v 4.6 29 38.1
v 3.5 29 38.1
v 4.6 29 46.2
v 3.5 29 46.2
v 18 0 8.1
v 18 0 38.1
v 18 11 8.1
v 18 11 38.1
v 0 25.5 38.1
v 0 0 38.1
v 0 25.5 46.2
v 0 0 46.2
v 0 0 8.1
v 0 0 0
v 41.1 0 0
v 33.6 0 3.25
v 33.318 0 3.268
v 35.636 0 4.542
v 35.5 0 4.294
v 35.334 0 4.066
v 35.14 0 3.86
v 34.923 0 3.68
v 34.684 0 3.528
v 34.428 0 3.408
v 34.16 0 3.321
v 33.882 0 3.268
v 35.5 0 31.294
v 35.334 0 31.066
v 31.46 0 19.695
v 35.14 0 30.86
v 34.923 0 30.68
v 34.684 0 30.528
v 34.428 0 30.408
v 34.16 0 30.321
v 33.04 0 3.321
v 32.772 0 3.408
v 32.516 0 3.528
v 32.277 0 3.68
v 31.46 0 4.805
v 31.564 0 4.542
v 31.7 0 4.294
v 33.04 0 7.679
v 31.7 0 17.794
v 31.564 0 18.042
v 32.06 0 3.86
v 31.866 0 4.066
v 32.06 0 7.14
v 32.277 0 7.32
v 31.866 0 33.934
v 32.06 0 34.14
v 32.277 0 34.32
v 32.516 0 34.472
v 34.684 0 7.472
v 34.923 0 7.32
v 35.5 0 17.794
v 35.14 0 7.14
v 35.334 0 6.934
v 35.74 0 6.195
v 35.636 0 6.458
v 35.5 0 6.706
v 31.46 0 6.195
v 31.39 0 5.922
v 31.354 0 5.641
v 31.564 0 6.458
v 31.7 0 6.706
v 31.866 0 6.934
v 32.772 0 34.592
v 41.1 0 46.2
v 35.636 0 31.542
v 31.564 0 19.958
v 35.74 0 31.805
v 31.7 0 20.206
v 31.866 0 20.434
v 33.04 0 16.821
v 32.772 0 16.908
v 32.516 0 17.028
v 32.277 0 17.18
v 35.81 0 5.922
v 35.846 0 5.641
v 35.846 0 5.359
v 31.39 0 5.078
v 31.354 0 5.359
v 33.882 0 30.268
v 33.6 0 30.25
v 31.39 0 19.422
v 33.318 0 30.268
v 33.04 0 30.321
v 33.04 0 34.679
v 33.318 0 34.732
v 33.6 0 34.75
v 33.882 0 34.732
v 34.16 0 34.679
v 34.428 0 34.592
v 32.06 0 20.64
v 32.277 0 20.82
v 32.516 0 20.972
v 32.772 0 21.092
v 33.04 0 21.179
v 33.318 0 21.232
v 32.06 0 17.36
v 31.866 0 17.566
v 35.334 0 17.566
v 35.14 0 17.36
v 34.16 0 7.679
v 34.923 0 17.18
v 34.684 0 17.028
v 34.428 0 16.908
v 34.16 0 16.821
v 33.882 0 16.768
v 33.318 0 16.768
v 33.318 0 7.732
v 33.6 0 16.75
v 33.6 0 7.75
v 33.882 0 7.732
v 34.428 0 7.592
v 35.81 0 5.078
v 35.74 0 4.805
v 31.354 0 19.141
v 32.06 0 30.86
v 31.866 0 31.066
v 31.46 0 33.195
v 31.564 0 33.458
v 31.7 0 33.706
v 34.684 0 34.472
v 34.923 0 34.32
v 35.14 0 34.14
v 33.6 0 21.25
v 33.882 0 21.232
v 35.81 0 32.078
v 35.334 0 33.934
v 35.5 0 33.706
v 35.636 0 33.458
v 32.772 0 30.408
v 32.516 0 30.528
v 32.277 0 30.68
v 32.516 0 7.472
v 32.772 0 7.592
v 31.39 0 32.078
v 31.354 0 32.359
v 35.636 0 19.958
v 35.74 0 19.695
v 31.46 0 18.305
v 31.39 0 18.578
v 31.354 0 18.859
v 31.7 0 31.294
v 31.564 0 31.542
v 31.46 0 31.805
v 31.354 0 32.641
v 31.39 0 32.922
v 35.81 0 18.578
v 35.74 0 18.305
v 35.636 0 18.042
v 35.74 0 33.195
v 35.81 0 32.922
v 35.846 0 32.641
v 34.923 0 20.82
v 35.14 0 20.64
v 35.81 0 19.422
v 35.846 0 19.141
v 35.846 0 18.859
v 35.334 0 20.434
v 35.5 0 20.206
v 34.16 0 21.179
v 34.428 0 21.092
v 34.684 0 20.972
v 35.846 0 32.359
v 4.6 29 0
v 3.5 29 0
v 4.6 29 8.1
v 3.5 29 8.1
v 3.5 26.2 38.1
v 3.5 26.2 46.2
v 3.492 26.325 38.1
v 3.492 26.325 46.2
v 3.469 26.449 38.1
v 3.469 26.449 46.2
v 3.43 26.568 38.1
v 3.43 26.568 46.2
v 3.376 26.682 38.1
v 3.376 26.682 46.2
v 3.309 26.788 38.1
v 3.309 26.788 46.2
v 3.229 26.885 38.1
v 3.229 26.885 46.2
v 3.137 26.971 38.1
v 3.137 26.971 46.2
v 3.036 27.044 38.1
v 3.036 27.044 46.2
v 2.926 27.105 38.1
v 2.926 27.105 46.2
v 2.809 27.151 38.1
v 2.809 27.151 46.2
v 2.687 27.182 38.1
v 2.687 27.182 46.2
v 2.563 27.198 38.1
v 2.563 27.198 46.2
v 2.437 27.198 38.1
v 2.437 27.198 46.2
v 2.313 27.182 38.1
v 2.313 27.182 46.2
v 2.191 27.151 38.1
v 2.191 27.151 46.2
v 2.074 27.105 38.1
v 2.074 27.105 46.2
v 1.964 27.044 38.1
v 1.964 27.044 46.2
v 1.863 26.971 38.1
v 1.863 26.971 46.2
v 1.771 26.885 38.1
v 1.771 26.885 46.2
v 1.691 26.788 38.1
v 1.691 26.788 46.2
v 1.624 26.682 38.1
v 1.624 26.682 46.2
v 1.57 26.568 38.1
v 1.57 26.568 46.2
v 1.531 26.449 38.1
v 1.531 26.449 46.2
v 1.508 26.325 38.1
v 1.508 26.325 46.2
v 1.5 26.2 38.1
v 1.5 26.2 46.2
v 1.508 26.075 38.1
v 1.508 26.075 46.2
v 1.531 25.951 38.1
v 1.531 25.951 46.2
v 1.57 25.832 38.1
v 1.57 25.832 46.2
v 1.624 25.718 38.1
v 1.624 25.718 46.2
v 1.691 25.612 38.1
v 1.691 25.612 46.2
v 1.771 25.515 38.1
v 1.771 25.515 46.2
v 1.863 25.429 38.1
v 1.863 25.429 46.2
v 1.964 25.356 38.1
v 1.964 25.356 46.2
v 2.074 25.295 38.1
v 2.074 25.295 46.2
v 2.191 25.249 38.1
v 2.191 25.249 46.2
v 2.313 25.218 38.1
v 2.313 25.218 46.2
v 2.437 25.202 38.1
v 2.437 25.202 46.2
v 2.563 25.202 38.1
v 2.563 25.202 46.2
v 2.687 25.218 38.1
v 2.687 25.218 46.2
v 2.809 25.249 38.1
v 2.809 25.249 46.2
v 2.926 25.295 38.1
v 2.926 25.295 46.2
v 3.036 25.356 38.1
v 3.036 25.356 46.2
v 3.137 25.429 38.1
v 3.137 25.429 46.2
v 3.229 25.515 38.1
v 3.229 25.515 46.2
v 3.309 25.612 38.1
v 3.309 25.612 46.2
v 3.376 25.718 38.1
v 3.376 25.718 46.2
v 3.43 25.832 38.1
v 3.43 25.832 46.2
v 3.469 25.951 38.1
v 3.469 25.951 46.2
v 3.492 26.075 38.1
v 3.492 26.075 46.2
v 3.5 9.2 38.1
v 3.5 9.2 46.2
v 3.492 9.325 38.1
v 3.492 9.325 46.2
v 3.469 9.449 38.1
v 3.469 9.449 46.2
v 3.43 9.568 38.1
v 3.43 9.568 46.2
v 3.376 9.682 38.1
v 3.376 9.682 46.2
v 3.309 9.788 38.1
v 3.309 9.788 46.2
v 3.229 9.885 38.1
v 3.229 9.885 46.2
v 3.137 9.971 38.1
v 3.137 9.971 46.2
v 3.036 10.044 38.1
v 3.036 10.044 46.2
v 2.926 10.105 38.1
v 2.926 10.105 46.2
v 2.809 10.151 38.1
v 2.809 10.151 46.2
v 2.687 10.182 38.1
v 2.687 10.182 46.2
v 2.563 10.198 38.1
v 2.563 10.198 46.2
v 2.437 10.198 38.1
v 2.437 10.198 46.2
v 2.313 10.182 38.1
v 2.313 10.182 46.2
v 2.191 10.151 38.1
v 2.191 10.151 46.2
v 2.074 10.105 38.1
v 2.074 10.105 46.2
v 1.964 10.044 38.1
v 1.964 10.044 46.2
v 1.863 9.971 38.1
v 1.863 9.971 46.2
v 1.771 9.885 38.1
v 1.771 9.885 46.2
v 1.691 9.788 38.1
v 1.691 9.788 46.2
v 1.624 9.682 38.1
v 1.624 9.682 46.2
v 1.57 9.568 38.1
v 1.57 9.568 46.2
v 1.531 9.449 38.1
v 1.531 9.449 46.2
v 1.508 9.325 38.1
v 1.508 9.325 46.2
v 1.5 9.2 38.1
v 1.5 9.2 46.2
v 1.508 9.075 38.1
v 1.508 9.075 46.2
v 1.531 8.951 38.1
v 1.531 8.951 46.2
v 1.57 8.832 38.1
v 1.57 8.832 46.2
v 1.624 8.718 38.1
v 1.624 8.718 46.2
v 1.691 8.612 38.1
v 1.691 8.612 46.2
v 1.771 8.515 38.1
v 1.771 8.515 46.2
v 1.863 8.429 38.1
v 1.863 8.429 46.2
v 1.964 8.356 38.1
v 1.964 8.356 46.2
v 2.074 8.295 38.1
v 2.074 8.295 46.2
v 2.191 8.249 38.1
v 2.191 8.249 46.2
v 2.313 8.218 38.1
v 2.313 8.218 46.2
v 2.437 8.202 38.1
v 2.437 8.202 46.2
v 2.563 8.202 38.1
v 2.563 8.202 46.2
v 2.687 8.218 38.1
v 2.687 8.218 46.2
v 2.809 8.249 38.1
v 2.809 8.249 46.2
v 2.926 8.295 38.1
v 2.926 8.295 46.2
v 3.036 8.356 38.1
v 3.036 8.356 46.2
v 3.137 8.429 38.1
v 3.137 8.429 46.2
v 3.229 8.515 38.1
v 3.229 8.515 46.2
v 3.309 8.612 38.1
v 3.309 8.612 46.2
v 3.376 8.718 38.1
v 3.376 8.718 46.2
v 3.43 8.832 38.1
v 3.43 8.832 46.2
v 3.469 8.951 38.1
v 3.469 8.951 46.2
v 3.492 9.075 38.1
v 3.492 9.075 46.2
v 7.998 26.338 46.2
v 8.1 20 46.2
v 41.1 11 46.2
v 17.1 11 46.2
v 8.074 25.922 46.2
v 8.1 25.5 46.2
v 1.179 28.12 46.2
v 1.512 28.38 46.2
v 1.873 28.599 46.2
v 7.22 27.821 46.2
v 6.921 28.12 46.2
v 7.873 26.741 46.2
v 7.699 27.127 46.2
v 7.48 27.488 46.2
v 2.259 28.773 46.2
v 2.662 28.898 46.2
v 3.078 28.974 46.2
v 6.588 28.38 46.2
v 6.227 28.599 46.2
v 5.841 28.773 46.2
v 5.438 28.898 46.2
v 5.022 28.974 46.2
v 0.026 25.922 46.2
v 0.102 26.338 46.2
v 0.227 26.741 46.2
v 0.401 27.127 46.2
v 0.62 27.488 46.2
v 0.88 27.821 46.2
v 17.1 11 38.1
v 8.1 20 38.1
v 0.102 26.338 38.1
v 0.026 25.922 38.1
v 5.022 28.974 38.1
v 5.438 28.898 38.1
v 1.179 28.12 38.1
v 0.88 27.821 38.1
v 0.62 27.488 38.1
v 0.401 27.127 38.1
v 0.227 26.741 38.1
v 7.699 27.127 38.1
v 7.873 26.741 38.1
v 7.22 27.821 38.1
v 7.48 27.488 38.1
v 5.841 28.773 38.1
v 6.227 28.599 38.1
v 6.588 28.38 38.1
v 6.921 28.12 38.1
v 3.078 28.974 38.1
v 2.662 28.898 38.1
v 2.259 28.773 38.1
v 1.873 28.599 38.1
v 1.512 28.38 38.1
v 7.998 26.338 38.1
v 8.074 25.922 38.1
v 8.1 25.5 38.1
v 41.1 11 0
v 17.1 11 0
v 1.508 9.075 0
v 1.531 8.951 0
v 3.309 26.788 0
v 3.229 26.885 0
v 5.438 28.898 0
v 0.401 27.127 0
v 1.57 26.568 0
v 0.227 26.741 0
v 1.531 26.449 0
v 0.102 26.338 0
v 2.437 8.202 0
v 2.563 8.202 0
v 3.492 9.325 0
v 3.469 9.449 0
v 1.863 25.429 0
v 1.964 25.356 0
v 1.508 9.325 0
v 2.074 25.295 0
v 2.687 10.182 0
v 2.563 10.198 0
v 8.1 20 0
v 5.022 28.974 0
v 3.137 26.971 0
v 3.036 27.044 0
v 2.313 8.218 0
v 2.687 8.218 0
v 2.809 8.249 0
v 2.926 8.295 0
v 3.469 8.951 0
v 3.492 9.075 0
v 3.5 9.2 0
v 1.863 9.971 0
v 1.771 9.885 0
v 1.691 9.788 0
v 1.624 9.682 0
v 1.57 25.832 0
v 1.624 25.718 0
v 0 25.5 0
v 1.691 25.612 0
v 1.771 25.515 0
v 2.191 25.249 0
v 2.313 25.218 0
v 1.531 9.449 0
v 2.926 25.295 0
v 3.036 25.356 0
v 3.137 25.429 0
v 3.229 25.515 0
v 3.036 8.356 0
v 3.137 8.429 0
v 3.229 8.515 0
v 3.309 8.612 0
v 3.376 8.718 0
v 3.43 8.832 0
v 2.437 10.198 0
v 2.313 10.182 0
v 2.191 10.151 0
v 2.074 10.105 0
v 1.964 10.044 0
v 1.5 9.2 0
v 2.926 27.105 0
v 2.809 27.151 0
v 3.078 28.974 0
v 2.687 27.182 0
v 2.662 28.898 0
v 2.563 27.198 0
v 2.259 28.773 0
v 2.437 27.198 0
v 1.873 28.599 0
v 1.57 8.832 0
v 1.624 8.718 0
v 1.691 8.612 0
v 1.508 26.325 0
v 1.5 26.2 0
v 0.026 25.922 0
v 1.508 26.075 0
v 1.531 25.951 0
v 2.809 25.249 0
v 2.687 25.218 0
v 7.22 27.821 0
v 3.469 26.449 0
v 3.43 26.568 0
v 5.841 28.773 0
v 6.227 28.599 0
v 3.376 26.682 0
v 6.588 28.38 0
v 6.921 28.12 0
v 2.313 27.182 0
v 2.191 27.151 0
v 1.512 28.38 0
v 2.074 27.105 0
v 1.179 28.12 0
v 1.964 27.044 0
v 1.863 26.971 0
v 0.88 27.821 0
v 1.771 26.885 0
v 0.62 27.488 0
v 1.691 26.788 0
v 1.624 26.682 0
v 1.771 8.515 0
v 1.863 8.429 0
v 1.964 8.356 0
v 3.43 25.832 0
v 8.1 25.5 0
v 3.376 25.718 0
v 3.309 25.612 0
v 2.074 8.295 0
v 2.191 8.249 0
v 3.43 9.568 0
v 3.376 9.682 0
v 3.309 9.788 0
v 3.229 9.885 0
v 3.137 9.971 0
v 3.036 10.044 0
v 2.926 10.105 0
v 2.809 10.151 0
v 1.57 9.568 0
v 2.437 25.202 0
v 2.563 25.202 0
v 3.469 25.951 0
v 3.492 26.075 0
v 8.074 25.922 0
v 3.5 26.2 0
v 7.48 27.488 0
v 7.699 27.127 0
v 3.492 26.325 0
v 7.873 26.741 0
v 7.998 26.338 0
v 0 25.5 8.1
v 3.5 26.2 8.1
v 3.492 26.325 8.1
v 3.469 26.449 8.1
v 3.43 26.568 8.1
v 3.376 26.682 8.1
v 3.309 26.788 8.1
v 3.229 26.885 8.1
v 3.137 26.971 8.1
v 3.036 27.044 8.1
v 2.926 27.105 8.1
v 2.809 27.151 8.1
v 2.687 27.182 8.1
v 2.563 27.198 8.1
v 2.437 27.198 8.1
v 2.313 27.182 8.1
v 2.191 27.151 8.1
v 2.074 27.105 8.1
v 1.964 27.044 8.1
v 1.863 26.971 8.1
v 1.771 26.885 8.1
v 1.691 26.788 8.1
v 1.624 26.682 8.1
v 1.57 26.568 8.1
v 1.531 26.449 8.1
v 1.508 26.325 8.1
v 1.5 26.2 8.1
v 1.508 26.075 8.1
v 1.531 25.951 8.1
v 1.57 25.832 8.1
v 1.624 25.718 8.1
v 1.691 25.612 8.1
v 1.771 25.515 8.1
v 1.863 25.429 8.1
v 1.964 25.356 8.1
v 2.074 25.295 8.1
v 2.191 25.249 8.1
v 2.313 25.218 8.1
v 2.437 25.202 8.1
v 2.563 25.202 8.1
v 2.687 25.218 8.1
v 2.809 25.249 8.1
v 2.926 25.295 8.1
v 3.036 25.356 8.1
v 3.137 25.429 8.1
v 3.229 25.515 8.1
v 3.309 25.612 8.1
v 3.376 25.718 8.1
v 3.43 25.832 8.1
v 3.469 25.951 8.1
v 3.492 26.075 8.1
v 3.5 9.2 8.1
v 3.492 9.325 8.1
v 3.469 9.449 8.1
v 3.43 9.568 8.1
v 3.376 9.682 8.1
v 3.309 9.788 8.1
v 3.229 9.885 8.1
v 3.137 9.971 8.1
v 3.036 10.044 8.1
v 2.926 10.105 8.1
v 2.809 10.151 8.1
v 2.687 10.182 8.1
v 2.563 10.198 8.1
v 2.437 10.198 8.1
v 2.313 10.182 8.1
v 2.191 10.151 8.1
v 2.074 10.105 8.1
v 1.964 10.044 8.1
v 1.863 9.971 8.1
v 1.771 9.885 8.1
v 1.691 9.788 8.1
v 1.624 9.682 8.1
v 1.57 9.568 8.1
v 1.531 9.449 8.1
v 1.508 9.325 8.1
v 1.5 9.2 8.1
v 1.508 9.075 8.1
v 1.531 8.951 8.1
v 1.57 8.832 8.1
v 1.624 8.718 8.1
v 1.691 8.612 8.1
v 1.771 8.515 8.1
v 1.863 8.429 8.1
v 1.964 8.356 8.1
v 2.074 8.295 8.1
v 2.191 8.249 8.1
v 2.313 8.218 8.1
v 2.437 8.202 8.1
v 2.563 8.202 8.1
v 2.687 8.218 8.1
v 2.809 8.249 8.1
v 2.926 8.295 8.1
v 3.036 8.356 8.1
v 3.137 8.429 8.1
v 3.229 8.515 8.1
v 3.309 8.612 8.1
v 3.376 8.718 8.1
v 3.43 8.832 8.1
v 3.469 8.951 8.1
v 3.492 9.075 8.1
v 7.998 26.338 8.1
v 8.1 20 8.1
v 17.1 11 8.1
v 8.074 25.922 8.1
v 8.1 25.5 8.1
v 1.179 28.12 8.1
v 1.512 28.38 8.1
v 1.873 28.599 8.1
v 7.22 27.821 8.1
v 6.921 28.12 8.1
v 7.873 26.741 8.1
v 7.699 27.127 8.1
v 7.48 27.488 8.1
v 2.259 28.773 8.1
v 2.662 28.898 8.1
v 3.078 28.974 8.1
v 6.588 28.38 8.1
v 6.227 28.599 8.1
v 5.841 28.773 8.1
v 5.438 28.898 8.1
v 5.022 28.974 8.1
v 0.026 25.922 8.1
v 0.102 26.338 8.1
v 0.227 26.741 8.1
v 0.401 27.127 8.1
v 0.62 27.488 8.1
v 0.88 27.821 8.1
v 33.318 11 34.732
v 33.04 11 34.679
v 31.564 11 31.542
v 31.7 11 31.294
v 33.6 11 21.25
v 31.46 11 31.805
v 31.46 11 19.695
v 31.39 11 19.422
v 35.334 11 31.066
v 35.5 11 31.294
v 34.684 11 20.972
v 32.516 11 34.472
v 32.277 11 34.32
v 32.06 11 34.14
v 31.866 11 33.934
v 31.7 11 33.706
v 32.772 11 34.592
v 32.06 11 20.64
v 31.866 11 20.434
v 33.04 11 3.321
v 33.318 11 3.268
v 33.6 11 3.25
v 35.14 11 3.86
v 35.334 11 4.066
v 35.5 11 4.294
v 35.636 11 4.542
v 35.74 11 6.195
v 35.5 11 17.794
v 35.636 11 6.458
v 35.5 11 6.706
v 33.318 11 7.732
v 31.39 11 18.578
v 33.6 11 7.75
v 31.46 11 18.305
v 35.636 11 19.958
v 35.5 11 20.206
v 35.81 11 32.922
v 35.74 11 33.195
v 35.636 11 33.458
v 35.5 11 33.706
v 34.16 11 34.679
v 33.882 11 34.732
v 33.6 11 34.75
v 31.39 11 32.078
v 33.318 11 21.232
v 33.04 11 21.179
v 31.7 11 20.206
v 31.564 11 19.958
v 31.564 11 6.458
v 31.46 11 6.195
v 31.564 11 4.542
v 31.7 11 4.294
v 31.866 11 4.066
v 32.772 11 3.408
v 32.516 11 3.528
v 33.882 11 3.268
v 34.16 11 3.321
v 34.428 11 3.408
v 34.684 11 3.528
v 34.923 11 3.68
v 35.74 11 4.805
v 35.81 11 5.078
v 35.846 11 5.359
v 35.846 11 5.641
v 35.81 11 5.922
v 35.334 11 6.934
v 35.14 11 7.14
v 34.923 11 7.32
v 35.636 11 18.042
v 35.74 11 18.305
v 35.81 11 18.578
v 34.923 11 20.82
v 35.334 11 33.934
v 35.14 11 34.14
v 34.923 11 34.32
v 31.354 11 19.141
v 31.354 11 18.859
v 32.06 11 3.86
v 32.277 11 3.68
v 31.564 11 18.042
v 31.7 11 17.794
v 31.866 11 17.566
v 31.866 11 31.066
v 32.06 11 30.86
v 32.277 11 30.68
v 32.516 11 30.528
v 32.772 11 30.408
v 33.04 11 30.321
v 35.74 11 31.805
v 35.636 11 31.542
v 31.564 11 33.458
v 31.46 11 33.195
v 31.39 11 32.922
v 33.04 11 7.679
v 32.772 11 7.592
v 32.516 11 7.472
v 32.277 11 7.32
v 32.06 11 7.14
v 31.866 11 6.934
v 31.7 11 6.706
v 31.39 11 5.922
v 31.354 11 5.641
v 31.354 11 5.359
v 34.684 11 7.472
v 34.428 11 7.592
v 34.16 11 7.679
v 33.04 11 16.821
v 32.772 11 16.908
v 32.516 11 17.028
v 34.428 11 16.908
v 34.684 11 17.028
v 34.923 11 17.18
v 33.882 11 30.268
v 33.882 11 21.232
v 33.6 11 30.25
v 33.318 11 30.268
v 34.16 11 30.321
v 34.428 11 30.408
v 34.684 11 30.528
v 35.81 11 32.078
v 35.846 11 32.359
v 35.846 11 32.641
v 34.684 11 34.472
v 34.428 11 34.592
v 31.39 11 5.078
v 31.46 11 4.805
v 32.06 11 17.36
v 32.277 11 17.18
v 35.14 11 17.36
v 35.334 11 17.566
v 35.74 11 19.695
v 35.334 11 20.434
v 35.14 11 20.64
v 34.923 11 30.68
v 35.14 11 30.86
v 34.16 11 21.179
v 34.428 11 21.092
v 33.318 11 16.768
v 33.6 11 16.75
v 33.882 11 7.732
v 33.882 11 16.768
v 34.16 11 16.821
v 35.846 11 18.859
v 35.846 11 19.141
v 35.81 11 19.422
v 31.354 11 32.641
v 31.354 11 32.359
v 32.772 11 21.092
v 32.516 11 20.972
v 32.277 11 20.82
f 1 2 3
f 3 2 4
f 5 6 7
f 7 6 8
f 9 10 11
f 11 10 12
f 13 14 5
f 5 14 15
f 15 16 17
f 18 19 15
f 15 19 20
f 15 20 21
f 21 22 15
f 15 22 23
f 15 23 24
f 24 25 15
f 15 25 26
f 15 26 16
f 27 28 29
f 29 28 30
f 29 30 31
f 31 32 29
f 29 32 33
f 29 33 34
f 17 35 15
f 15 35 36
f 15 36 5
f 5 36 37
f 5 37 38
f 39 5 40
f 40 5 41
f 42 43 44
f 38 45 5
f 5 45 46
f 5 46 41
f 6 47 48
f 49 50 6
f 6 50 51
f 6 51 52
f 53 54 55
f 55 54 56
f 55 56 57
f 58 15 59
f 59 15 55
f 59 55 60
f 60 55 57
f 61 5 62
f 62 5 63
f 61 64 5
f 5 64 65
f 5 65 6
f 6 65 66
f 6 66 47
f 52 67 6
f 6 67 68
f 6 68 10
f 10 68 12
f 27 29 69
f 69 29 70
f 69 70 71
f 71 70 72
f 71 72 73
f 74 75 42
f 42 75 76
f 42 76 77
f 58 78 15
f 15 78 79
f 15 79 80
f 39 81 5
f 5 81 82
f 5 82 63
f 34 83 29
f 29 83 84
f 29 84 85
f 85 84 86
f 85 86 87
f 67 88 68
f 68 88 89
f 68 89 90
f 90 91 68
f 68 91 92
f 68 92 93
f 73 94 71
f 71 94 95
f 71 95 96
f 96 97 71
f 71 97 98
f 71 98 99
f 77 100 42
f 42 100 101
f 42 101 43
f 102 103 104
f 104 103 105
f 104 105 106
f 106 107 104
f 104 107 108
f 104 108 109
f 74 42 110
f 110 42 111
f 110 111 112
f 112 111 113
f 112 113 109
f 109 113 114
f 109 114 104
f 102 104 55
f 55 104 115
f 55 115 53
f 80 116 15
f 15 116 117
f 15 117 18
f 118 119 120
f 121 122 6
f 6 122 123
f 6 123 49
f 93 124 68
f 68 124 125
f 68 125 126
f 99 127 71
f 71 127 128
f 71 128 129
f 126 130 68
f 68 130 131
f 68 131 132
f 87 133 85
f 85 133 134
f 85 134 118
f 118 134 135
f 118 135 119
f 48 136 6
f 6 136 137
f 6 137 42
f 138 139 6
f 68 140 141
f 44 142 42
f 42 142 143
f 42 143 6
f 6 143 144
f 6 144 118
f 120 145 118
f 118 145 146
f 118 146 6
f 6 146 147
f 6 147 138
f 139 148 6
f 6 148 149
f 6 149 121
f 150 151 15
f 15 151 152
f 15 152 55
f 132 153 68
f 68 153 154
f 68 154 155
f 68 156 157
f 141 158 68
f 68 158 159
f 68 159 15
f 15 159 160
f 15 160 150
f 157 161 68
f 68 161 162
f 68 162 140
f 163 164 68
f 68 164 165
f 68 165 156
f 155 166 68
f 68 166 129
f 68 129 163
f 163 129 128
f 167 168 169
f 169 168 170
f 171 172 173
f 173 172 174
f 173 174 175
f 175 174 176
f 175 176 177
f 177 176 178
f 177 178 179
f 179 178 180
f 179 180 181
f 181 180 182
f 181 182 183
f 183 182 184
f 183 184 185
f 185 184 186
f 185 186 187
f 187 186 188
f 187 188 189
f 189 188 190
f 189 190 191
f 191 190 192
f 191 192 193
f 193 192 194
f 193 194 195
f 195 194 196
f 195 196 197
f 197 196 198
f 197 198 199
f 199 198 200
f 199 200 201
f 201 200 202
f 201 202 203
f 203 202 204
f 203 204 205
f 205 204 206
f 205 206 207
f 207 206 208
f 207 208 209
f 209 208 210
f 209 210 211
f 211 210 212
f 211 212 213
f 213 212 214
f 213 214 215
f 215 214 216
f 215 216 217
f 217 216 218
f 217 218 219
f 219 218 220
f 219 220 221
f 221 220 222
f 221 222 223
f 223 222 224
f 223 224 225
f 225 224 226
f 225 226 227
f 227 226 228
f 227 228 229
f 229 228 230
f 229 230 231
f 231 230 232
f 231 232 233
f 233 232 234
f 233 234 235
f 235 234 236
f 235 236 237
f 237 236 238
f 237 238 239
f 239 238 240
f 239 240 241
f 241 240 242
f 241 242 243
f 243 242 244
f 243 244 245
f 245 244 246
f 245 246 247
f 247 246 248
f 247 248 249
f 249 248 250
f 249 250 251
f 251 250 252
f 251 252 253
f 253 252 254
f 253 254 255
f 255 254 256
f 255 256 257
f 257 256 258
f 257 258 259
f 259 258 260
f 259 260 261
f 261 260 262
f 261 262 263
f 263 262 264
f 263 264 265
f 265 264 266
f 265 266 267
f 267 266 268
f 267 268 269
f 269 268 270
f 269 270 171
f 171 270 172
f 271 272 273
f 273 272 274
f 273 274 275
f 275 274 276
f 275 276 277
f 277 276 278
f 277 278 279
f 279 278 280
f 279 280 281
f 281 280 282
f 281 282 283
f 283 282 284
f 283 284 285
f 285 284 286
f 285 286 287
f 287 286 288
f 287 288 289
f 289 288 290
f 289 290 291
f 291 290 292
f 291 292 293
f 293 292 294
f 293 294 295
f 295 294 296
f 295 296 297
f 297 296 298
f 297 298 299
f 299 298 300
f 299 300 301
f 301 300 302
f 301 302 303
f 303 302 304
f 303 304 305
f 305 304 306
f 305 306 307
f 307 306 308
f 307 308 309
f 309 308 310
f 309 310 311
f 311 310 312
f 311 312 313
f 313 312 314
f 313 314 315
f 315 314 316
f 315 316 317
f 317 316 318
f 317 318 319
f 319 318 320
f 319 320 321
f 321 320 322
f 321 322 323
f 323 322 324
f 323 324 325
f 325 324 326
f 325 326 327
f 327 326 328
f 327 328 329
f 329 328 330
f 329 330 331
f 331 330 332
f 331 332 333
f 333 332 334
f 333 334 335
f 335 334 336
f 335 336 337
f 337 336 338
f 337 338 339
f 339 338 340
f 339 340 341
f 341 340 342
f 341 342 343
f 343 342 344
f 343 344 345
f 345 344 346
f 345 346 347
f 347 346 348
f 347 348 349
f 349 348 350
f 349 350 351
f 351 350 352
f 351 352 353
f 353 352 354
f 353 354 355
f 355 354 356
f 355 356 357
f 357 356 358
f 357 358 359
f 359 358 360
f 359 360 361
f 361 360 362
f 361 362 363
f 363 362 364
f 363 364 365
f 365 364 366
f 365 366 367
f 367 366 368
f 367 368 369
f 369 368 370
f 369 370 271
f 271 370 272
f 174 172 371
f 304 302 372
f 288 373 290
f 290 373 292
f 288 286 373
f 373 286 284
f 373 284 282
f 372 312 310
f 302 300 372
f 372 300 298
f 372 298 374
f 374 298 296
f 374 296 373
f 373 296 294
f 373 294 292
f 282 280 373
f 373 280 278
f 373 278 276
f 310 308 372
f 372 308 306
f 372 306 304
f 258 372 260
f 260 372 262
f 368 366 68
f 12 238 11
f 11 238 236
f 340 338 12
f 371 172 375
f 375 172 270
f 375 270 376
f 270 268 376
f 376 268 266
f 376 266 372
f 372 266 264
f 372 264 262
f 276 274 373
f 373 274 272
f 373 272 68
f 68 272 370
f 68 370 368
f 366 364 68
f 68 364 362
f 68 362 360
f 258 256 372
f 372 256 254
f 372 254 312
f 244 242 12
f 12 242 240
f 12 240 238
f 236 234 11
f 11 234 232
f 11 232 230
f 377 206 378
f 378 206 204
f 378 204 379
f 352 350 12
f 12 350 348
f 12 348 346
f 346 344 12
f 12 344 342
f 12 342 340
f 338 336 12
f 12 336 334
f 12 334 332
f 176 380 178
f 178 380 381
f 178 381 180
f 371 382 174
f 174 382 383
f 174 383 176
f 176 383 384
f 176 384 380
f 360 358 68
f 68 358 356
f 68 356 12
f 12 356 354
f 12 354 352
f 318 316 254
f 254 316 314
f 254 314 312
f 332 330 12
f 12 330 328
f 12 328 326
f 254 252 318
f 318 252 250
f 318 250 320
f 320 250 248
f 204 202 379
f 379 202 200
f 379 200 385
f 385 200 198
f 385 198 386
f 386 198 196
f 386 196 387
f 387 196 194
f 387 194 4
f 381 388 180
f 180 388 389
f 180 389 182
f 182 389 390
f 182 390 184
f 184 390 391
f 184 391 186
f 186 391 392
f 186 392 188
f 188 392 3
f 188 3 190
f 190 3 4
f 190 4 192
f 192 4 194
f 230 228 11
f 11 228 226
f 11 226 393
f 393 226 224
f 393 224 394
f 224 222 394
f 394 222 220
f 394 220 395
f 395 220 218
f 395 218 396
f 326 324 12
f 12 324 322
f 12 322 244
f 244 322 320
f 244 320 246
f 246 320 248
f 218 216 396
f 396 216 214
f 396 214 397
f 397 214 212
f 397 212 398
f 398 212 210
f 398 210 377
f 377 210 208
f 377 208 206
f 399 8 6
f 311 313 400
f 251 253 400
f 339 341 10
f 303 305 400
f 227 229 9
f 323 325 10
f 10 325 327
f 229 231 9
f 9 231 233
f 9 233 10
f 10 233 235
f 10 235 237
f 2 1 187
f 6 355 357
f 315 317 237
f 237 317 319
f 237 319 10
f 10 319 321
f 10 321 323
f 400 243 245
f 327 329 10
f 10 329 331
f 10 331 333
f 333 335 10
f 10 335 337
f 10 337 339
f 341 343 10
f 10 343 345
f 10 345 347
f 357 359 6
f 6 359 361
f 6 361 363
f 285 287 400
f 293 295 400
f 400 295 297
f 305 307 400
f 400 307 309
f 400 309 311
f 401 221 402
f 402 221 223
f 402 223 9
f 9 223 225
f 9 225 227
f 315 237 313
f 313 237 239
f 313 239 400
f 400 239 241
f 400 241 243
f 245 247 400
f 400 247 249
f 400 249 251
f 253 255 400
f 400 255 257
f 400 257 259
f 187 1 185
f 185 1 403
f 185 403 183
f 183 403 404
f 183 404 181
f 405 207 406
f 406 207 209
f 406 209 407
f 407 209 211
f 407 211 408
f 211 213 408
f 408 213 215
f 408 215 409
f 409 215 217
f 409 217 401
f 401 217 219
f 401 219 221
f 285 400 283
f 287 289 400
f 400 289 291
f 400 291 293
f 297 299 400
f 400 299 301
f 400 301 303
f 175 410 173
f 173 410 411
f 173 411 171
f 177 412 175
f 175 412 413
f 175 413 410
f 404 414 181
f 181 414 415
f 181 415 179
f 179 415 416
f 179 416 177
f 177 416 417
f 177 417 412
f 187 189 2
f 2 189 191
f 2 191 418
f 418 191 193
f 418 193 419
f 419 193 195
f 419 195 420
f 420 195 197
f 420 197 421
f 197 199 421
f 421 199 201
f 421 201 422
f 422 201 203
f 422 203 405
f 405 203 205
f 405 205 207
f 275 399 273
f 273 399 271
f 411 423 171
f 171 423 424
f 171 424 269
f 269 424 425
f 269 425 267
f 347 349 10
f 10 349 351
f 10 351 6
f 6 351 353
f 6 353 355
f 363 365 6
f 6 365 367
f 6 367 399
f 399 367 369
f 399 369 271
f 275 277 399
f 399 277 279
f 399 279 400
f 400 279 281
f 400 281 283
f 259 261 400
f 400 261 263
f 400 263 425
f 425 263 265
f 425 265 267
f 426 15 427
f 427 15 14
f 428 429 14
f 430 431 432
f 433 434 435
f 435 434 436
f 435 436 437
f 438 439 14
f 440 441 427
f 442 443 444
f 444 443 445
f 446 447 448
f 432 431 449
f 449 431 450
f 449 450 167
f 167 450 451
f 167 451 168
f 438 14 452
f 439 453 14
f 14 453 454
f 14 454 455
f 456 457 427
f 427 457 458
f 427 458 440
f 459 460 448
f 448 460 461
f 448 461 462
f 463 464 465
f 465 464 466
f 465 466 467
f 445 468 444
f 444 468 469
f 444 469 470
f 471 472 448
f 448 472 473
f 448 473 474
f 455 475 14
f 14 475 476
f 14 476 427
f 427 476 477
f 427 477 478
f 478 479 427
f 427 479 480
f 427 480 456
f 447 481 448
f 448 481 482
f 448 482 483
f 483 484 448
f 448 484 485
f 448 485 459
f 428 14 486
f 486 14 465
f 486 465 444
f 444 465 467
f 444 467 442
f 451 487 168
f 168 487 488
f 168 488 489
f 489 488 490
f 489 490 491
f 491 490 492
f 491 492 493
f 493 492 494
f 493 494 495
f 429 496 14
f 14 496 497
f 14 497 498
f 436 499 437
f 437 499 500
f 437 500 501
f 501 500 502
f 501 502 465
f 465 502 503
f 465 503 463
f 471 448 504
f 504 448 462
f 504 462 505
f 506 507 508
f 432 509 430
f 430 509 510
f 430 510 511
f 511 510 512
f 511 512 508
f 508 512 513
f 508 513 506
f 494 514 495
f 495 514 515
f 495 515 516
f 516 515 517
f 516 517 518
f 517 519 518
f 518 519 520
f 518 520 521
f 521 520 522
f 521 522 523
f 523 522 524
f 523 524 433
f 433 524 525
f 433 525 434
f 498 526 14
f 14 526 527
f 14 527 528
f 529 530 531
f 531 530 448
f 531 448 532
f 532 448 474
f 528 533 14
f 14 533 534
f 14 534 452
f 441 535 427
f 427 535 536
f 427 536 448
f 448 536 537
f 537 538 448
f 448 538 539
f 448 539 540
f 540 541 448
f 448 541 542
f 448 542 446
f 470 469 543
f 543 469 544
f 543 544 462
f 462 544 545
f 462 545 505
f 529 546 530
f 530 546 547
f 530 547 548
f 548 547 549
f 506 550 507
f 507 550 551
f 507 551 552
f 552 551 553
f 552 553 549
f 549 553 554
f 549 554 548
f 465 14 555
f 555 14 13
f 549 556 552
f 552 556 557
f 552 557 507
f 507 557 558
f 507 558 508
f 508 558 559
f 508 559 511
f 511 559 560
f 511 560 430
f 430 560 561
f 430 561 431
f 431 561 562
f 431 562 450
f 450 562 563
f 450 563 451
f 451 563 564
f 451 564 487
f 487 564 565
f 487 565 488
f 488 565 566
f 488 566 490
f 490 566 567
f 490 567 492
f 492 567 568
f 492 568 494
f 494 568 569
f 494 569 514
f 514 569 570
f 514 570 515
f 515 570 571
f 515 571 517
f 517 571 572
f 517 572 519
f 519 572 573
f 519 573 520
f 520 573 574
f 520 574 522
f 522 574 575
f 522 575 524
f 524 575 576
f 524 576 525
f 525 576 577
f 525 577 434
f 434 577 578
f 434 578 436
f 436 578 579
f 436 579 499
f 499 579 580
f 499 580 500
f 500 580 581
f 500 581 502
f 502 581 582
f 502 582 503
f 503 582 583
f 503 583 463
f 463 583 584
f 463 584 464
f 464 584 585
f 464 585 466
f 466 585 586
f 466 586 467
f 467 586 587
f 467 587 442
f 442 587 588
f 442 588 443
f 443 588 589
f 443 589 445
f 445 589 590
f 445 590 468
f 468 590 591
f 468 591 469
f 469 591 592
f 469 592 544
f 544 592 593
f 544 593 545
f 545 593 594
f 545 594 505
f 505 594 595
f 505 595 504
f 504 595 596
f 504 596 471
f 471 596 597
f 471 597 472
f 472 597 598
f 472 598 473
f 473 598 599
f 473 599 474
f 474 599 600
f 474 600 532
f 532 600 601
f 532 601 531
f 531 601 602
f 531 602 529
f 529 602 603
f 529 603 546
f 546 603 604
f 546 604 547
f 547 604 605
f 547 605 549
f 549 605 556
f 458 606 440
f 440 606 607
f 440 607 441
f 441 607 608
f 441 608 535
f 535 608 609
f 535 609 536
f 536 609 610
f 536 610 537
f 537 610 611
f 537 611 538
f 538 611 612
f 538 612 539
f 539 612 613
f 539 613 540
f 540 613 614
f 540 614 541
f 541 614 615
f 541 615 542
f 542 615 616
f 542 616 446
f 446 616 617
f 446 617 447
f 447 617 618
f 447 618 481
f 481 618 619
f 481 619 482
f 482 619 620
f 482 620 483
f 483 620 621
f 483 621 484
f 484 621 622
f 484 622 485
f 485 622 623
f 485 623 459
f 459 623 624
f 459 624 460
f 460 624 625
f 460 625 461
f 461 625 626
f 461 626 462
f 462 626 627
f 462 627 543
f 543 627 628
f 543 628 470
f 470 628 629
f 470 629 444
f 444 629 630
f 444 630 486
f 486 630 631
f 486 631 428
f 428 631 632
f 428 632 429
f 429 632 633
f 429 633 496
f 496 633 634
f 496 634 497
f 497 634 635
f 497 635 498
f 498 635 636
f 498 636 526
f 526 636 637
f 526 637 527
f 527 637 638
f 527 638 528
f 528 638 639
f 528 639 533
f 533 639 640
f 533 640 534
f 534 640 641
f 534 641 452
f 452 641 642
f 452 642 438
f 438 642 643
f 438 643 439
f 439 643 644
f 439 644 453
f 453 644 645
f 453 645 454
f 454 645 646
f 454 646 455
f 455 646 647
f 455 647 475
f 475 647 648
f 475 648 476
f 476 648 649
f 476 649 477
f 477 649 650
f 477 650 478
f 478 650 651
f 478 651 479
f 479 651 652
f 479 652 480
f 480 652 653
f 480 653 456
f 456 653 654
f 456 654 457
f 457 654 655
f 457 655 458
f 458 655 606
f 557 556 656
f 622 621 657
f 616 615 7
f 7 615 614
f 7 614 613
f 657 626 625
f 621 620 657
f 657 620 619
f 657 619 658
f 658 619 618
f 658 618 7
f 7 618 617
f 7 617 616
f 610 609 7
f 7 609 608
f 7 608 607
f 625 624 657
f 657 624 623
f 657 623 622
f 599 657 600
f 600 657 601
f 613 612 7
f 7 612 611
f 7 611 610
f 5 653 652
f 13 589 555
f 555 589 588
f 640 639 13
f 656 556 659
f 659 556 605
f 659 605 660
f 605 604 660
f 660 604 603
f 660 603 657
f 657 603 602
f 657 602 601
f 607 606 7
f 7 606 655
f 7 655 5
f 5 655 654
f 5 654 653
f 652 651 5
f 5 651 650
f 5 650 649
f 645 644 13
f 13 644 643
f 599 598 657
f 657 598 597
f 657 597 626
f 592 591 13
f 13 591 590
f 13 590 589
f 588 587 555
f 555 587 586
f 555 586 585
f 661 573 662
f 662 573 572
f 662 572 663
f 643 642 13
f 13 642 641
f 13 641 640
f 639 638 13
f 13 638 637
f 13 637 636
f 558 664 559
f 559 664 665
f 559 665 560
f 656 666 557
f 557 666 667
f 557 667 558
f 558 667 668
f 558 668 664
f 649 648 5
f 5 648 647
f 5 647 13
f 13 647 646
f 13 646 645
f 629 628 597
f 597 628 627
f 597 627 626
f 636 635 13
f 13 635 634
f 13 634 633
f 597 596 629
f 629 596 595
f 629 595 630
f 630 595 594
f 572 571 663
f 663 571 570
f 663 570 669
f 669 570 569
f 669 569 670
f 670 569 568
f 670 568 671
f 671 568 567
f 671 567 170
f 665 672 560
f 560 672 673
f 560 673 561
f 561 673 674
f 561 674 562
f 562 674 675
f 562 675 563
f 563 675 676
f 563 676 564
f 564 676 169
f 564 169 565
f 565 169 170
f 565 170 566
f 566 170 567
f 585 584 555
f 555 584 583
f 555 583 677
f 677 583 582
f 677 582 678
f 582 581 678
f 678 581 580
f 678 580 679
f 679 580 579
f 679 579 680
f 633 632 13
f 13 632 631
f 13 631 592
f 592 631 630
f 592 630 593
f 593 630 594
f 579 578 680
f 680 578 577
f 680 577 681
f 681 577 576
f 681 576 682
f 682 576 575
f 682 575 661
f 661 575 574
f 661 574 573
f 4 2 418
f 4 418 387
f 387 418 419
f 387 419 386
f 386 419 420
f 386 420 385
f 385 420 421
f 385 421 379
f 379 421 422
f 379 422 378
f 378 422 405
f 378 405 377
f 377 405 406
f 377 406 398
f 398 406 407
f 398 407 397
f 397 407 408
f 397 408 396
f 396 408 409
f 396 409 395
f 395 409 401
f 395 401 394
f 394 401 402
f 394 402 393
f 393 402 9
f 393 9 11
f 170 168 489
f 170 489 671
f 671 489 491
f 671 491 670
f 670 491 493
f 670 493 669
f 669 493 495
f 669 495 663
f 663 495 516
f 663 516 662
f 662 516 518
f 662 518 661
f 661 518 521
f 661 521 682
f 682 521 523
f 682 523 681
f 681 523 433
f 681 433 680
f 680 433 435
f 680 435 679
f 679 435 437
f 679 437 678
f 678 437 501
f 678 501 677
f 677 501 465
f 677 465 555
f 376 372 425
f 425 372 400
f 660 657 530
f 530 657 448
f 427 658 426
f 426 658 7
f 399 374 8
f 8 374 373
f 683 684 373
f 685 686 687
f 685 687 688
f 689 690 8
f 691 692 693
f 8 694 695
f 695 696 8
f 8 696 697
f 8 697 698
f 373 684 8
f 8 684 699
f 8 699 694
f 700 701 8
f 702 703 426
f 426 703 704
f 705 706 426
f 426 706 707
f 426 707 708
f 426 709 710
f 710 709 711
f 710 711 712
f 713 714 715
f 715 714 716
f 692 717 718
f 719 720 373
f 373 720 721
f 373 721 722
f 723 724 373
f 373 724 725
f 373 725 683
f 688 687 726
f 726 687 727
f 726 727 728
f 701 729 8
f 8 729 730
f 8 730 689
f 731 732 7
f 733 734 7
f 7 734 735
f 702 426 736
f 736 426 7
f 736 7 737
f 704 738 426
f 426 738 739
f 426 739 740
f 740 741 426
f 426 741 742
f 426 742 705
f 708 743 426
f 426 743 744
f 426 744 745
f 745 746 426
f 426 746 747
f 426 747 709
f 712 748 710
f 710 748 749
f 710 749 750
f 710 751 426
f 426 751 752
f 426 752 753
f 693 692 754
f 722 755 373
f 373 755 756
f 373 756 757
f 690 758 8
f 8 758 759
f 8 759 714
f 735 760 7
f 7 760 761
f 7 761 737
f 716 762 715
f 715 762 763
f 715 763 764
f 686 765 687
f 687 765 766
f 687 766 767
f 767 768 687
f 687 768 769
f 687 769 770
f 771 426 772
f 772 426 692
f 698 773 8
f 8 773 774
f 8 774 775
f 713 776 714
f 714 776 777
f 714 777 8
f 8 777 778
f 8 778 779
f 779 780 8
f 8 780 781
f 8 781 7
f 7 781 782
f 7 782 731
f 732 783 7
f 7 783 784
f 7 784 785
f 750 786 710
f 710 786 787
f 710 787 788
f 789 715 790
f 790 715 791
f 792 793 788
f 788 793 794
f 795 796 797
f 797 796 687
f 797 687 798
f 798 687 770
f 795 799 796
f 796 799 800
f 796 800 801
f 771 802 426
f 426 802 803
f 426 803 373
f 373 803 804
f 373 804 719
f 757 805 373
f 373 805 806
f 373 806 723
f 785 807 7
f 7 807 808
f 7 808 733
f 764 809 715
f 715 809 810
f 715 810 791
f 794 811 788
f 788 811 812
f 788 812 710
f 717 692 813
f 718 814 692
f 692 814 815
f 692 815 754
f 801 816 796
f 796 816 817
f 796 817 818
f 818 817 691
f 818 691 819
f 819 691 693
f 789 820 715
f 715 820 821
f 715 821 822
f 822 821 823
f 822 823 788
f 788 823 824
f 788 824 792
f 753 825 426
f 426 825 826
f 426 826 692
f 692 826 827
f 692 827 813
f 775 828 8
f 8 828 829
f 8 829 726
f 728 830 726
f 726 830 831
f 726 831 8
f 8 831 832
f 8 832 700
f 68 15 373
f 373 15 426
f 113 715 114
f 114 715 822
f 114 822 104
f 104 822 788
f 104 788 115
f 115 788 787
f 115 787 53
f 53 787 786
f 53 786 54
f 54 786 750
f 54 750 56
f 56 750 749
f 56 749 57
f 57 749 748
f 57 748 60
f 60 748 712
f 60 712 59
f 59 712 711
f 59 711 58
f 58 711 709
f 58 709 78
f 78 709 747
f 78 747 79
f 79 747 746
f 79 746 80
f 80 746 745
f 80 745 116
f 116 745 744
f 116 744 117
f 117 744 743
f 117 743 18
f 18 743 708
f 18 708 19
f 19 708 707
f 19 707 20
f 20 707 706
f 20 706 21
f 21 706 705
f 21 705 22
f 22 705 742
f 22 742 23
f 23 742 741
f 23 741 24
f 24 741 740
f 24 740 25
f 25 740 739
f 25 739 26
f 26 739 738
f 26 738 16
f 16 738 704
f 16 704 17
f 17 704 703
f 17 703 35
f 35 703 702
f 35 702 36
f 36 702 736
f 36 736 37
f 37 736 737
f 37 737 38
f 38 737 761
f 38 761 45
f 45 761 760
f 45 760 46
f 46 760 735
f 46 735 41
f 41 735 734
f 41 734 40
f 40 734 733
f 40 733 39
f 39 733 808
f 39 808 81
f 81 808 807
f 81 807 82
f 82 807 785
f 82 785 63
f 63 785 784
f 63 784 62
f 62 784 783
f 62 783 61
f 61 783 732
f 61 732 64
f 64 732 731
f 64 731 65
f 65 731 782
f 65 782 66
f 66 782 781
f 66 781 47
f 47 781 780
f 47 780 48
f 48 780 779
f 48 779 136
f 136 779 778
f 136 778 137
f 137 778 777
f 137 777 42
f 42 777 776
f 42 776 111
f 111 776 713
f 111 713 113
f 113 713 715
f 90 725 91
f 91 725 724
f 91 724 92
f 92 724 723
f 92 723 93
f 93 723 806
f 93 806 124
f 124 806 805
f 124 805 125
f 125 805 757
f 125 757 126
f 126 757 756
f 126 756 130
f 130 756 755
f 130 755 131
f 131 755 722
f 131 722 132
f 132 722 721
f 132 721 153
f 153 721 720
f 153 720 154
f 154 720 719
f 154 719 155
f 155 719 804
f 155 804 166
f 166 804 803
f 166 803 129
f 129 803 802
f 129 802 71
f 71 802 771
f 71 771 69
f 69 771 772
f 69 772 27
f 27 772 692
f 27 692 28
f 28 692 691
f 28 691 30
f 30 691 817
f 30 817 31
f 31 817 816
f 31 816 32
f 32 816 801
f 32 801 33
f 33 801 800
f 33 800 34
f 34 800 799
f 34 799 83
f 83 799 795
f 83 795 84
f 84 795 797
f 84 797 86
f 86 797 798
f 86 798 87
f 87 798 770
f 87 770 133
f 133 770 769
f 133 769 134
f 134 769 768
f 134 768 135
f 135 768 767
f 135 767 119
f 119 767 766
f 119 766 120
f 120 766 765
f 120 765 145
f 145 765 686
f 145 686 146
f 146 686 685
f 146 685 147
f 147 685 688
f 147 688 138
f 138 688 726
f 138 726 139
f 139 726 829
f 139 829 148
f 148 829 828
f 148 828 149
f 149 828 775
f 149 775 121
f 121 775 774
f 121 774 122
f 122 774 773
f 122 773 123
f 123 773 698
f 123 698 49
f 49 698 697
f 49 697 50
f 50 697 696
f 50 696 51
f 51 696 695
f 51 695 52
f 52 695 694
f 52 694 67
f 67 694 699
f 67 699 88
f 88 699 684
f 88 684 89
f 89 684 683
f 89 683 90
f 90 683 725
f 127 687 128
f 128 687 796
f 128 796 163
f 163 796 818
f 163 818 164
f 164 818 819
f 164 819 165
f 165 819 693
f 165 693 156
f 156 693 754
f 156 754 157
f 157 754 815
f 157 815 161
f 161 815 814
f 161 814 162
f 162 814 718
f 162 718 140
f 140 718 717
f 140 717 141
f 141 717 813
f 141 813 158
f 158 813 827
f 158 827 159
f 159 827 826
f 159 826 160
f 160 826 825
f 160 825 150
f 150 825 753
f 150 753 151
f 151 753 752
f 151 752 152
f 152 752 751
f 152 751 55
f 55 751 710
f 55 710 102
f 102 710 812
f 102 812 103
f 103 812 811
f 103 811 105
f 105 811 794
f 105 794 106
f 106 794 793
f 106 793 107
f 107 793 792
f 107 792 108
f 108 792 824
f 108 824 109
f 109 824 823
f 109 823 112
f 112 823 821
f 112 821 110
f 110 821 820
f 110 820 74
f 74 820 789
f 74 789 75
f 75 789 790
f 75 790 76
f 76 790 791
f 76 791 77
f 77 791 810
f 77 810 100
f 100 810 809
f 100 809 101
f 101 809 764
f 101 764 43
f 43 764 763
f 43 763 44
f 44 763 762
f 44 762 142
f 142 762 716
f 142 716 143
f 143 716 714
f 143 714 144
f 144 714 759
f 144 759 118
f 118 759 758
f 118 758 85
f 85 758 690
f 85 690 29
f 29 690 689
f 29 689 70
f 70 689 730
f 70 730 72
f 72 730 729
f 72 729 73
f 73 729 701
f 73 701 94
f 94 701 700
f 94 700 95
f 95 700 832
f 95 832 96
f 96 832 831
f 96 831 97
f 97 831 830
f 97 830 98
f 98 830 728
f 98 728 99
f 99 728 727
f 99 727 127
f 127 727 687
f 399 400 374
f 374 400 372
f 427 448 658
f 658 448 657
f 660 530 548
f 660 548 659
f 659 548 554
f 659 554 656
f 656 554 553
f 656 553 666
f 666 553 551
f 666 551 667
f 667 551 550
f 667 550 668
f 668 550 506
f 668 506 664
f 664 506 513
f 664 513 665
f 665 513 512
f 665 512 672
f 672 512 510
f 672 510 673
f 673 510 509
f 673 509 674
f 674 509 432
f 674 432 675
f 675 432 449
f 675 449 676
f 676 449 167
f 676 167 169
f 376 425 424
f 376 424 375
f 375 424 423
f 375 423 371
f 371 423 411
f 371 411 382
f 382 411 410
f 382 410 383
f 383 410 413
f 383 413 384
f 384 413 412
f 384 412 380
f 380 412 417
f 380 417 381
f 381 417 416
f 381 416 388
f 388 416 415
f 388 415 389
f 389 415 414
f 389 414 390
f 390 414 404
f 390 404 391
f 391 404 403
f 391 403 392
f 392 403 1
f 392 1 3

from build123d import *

# Parameters (mm, degrees)
ESQUISSE1_W             = 18
ESQUISSE1_H             = 29
BOSS_EXTRU_1_DEPTH      = 46.2
ESQUISSE3_R             = 1
ENL_V_MAT_EXTRU_1_DEPTH = 58.440752084
ESQUISSE4_W             = 18
ESQUISSE4_H             = 30
ENL_V_MAT_EXTRU_2_DEPTH = 58.440752084
ESQUISSE5_W             = 8.1
ESQUISSE5_H             = 46.2
BOSS_EXTRU_2_DEPTH      = 29
CONG_1_R                = 3.5
ENL_V_START             = -46.2
ESQUISSE7_W             = 18
ESQUISSE7_H             = 18
ENL_V_MAT_EXTRU_4_DEPTH = 46.2
ESQUISSE8_W             = 15
ESQUISSE8_H             = 46.2
ESQUISSE8_R             = 2.25
BOSS_EXTRU_3_DEPTH      = 11
CHANFREIN1_SIZE         = 9
CONG_2_R                = 3.5


with BuildPart() as part:
    # Esquisse1 → Boss.-Extru.1 (new body)
    with BuildSketch(Plane.XY):
        with Locations((9, 14.5)):
            Rectangle(ESQUISSE1_W, ESQUISSE1_H)
    extrude(amount=BOSS_EXTRU_1_DEPTH)

    # Esquisse3 → Enlèv. mat.-Extru.1 (cut, through all)
    with BuildSketch(Plane.XY.offset(46.2)):
        with Locations((2.5, 26.2)):
            Circle(ESQUISSE3_R)
        with Locations((2.5, 9.2)):
            Circle(ESQUISSE3_R)
    extrude(amount=-ENL_V_MAT_EXTRU_1_DEPTH, mode=Mode.SUBTRACT)

    # Esquisse4 → Enlèv. mat.-Extru.2 (cut, through all)
    with BuildSketch(Plane(origin=(0, 29, 0), x_dir=(1, 0, 0), z_dir=(0, 1, 0))):
        with Locations((9, -23.1)):
            Rectangle(ESQUISSE4_W, ESQUISSE4_H)
    extrude(amount=-ENL_V_MAT_EXTRU_2_DEPTH, mode=Mode.SUBTRACT)


with BuildPart() as enl_v_mat_extru_2_piece_1:
    # of the separate pieces the step leaves, piece 1, a body of its own (enl_v_mat_extru_2_pieces)
    add(part.part.solids().sort_by_distance((0, 0, 0))[0])



with BuildPart() as enl_v_mat_extru_2_piece_2:
    # of the separate pieces the step leaves, piece 2, a body of its own (enl_v_mat_extru_2_pieces)
    add(part.part.solids().sort_by_distance((18, 0, 38.1))[0])


with BuildPart() as enl_v_mat_extru_2_piece_1_1:
    add(enl_v_mat_extru_2_piece_1.part)

    add(enl_v_mat_extru_2_piece_2.part)  # Boss.-Extru.2 merges Enlèv. mat.-Extru.2 piece 2
    # Esquisse5 → Boss.-Extru.2 (add)
    with BuildSketch(Plane(origin=(0, 29, 0), x_dir=(1, 0, 0), z_dir=(0, 1, 0))):
        with Locations((22.05, -23.1)):
            Rectangle(ESQUISSE5_W, ESQUISSE5_H)
    extrude(amount=-BOSS_EXTRU_2_DEPTH)

    # Congé1
    cong_1_edges = [enl_v_mat_extru_2_piece_1_1.edges().sort_by_distance(p)[0] for p in [
        (0, 29, 42.15),
        (0, 29, 4.05),
    ]]
    fillet(cong_1_edges, radius=CONG_1_R)

    # Esquisse7 → Enlèv. mat.-Extru.4 (cut)
    with BuildSketch(Plane(origin=(0, 0, 0), x_dir=(-1, 0, 0), z_dir=(0, 0, -1)).offset(ENL_V_START)):
        with Locations((-17.1, 20)):
            Rectangle(ESQUISSE7_W, ESQUISSE7_H)
    extrude(amount=ENL_V_MAT_EXTRU_4_DEPTH, mode=Mode.SUBTRACT)

    # Esquisse8 → Boss.-Extru.3 (add)
    with BuildSketch(Plane(origin=(0, 11, 0), x_dir=(1, 0, 0), z_dir=(0, 1, 0))):
        with Locations((33.6, -23.1)):
            Rectangle(ESQUISSE8_W, ESQUISSE8_H)
        with Locations(Location((33.6, -5.5, 0), (0, 0, 270))):
            Circle(ESQUISSE8_R, mode=Mode.SUBTRACT)
        with Locations(Location((33.6, -32.5, 0), (0, 0, 270))):
            Circle(ESQUISSE8_R, mode=Mode.SUBTRACT)
        with Locations(Location((33.6, -19, 0), (0, 0, 270))):
            Circle(ESQUISSE8_R, mode=Mode.SUBTRACT)
    extrude(amount=-BOSS_EXTRU_3_DEPTH)

    # Chanfrein1
    chanfrein1_edges = [enl_v_mat_extru_2_piece_1_1.edges().sort_by_distance(p)[0] for p in [
        (8.1, 11, 42.15),
        (8.1, 11, 4.05),
    ]]
    chamfer(chanfrein1_edges, length=CHANFREIN1_SIZE)

    # Congé2
    cong_2_edges = [enl_v_mat_extru_2_piece_1_1.edges().sort_by_distance(p)[0] for p in [
        (8.1, 29, 42.15),
        (8.1, 29, 4.05),
    ]]
    fillet(cong_2_edges, radius=CONG_2_R)


solid = enl_v_mat_extru_2_piece_1_1.part
